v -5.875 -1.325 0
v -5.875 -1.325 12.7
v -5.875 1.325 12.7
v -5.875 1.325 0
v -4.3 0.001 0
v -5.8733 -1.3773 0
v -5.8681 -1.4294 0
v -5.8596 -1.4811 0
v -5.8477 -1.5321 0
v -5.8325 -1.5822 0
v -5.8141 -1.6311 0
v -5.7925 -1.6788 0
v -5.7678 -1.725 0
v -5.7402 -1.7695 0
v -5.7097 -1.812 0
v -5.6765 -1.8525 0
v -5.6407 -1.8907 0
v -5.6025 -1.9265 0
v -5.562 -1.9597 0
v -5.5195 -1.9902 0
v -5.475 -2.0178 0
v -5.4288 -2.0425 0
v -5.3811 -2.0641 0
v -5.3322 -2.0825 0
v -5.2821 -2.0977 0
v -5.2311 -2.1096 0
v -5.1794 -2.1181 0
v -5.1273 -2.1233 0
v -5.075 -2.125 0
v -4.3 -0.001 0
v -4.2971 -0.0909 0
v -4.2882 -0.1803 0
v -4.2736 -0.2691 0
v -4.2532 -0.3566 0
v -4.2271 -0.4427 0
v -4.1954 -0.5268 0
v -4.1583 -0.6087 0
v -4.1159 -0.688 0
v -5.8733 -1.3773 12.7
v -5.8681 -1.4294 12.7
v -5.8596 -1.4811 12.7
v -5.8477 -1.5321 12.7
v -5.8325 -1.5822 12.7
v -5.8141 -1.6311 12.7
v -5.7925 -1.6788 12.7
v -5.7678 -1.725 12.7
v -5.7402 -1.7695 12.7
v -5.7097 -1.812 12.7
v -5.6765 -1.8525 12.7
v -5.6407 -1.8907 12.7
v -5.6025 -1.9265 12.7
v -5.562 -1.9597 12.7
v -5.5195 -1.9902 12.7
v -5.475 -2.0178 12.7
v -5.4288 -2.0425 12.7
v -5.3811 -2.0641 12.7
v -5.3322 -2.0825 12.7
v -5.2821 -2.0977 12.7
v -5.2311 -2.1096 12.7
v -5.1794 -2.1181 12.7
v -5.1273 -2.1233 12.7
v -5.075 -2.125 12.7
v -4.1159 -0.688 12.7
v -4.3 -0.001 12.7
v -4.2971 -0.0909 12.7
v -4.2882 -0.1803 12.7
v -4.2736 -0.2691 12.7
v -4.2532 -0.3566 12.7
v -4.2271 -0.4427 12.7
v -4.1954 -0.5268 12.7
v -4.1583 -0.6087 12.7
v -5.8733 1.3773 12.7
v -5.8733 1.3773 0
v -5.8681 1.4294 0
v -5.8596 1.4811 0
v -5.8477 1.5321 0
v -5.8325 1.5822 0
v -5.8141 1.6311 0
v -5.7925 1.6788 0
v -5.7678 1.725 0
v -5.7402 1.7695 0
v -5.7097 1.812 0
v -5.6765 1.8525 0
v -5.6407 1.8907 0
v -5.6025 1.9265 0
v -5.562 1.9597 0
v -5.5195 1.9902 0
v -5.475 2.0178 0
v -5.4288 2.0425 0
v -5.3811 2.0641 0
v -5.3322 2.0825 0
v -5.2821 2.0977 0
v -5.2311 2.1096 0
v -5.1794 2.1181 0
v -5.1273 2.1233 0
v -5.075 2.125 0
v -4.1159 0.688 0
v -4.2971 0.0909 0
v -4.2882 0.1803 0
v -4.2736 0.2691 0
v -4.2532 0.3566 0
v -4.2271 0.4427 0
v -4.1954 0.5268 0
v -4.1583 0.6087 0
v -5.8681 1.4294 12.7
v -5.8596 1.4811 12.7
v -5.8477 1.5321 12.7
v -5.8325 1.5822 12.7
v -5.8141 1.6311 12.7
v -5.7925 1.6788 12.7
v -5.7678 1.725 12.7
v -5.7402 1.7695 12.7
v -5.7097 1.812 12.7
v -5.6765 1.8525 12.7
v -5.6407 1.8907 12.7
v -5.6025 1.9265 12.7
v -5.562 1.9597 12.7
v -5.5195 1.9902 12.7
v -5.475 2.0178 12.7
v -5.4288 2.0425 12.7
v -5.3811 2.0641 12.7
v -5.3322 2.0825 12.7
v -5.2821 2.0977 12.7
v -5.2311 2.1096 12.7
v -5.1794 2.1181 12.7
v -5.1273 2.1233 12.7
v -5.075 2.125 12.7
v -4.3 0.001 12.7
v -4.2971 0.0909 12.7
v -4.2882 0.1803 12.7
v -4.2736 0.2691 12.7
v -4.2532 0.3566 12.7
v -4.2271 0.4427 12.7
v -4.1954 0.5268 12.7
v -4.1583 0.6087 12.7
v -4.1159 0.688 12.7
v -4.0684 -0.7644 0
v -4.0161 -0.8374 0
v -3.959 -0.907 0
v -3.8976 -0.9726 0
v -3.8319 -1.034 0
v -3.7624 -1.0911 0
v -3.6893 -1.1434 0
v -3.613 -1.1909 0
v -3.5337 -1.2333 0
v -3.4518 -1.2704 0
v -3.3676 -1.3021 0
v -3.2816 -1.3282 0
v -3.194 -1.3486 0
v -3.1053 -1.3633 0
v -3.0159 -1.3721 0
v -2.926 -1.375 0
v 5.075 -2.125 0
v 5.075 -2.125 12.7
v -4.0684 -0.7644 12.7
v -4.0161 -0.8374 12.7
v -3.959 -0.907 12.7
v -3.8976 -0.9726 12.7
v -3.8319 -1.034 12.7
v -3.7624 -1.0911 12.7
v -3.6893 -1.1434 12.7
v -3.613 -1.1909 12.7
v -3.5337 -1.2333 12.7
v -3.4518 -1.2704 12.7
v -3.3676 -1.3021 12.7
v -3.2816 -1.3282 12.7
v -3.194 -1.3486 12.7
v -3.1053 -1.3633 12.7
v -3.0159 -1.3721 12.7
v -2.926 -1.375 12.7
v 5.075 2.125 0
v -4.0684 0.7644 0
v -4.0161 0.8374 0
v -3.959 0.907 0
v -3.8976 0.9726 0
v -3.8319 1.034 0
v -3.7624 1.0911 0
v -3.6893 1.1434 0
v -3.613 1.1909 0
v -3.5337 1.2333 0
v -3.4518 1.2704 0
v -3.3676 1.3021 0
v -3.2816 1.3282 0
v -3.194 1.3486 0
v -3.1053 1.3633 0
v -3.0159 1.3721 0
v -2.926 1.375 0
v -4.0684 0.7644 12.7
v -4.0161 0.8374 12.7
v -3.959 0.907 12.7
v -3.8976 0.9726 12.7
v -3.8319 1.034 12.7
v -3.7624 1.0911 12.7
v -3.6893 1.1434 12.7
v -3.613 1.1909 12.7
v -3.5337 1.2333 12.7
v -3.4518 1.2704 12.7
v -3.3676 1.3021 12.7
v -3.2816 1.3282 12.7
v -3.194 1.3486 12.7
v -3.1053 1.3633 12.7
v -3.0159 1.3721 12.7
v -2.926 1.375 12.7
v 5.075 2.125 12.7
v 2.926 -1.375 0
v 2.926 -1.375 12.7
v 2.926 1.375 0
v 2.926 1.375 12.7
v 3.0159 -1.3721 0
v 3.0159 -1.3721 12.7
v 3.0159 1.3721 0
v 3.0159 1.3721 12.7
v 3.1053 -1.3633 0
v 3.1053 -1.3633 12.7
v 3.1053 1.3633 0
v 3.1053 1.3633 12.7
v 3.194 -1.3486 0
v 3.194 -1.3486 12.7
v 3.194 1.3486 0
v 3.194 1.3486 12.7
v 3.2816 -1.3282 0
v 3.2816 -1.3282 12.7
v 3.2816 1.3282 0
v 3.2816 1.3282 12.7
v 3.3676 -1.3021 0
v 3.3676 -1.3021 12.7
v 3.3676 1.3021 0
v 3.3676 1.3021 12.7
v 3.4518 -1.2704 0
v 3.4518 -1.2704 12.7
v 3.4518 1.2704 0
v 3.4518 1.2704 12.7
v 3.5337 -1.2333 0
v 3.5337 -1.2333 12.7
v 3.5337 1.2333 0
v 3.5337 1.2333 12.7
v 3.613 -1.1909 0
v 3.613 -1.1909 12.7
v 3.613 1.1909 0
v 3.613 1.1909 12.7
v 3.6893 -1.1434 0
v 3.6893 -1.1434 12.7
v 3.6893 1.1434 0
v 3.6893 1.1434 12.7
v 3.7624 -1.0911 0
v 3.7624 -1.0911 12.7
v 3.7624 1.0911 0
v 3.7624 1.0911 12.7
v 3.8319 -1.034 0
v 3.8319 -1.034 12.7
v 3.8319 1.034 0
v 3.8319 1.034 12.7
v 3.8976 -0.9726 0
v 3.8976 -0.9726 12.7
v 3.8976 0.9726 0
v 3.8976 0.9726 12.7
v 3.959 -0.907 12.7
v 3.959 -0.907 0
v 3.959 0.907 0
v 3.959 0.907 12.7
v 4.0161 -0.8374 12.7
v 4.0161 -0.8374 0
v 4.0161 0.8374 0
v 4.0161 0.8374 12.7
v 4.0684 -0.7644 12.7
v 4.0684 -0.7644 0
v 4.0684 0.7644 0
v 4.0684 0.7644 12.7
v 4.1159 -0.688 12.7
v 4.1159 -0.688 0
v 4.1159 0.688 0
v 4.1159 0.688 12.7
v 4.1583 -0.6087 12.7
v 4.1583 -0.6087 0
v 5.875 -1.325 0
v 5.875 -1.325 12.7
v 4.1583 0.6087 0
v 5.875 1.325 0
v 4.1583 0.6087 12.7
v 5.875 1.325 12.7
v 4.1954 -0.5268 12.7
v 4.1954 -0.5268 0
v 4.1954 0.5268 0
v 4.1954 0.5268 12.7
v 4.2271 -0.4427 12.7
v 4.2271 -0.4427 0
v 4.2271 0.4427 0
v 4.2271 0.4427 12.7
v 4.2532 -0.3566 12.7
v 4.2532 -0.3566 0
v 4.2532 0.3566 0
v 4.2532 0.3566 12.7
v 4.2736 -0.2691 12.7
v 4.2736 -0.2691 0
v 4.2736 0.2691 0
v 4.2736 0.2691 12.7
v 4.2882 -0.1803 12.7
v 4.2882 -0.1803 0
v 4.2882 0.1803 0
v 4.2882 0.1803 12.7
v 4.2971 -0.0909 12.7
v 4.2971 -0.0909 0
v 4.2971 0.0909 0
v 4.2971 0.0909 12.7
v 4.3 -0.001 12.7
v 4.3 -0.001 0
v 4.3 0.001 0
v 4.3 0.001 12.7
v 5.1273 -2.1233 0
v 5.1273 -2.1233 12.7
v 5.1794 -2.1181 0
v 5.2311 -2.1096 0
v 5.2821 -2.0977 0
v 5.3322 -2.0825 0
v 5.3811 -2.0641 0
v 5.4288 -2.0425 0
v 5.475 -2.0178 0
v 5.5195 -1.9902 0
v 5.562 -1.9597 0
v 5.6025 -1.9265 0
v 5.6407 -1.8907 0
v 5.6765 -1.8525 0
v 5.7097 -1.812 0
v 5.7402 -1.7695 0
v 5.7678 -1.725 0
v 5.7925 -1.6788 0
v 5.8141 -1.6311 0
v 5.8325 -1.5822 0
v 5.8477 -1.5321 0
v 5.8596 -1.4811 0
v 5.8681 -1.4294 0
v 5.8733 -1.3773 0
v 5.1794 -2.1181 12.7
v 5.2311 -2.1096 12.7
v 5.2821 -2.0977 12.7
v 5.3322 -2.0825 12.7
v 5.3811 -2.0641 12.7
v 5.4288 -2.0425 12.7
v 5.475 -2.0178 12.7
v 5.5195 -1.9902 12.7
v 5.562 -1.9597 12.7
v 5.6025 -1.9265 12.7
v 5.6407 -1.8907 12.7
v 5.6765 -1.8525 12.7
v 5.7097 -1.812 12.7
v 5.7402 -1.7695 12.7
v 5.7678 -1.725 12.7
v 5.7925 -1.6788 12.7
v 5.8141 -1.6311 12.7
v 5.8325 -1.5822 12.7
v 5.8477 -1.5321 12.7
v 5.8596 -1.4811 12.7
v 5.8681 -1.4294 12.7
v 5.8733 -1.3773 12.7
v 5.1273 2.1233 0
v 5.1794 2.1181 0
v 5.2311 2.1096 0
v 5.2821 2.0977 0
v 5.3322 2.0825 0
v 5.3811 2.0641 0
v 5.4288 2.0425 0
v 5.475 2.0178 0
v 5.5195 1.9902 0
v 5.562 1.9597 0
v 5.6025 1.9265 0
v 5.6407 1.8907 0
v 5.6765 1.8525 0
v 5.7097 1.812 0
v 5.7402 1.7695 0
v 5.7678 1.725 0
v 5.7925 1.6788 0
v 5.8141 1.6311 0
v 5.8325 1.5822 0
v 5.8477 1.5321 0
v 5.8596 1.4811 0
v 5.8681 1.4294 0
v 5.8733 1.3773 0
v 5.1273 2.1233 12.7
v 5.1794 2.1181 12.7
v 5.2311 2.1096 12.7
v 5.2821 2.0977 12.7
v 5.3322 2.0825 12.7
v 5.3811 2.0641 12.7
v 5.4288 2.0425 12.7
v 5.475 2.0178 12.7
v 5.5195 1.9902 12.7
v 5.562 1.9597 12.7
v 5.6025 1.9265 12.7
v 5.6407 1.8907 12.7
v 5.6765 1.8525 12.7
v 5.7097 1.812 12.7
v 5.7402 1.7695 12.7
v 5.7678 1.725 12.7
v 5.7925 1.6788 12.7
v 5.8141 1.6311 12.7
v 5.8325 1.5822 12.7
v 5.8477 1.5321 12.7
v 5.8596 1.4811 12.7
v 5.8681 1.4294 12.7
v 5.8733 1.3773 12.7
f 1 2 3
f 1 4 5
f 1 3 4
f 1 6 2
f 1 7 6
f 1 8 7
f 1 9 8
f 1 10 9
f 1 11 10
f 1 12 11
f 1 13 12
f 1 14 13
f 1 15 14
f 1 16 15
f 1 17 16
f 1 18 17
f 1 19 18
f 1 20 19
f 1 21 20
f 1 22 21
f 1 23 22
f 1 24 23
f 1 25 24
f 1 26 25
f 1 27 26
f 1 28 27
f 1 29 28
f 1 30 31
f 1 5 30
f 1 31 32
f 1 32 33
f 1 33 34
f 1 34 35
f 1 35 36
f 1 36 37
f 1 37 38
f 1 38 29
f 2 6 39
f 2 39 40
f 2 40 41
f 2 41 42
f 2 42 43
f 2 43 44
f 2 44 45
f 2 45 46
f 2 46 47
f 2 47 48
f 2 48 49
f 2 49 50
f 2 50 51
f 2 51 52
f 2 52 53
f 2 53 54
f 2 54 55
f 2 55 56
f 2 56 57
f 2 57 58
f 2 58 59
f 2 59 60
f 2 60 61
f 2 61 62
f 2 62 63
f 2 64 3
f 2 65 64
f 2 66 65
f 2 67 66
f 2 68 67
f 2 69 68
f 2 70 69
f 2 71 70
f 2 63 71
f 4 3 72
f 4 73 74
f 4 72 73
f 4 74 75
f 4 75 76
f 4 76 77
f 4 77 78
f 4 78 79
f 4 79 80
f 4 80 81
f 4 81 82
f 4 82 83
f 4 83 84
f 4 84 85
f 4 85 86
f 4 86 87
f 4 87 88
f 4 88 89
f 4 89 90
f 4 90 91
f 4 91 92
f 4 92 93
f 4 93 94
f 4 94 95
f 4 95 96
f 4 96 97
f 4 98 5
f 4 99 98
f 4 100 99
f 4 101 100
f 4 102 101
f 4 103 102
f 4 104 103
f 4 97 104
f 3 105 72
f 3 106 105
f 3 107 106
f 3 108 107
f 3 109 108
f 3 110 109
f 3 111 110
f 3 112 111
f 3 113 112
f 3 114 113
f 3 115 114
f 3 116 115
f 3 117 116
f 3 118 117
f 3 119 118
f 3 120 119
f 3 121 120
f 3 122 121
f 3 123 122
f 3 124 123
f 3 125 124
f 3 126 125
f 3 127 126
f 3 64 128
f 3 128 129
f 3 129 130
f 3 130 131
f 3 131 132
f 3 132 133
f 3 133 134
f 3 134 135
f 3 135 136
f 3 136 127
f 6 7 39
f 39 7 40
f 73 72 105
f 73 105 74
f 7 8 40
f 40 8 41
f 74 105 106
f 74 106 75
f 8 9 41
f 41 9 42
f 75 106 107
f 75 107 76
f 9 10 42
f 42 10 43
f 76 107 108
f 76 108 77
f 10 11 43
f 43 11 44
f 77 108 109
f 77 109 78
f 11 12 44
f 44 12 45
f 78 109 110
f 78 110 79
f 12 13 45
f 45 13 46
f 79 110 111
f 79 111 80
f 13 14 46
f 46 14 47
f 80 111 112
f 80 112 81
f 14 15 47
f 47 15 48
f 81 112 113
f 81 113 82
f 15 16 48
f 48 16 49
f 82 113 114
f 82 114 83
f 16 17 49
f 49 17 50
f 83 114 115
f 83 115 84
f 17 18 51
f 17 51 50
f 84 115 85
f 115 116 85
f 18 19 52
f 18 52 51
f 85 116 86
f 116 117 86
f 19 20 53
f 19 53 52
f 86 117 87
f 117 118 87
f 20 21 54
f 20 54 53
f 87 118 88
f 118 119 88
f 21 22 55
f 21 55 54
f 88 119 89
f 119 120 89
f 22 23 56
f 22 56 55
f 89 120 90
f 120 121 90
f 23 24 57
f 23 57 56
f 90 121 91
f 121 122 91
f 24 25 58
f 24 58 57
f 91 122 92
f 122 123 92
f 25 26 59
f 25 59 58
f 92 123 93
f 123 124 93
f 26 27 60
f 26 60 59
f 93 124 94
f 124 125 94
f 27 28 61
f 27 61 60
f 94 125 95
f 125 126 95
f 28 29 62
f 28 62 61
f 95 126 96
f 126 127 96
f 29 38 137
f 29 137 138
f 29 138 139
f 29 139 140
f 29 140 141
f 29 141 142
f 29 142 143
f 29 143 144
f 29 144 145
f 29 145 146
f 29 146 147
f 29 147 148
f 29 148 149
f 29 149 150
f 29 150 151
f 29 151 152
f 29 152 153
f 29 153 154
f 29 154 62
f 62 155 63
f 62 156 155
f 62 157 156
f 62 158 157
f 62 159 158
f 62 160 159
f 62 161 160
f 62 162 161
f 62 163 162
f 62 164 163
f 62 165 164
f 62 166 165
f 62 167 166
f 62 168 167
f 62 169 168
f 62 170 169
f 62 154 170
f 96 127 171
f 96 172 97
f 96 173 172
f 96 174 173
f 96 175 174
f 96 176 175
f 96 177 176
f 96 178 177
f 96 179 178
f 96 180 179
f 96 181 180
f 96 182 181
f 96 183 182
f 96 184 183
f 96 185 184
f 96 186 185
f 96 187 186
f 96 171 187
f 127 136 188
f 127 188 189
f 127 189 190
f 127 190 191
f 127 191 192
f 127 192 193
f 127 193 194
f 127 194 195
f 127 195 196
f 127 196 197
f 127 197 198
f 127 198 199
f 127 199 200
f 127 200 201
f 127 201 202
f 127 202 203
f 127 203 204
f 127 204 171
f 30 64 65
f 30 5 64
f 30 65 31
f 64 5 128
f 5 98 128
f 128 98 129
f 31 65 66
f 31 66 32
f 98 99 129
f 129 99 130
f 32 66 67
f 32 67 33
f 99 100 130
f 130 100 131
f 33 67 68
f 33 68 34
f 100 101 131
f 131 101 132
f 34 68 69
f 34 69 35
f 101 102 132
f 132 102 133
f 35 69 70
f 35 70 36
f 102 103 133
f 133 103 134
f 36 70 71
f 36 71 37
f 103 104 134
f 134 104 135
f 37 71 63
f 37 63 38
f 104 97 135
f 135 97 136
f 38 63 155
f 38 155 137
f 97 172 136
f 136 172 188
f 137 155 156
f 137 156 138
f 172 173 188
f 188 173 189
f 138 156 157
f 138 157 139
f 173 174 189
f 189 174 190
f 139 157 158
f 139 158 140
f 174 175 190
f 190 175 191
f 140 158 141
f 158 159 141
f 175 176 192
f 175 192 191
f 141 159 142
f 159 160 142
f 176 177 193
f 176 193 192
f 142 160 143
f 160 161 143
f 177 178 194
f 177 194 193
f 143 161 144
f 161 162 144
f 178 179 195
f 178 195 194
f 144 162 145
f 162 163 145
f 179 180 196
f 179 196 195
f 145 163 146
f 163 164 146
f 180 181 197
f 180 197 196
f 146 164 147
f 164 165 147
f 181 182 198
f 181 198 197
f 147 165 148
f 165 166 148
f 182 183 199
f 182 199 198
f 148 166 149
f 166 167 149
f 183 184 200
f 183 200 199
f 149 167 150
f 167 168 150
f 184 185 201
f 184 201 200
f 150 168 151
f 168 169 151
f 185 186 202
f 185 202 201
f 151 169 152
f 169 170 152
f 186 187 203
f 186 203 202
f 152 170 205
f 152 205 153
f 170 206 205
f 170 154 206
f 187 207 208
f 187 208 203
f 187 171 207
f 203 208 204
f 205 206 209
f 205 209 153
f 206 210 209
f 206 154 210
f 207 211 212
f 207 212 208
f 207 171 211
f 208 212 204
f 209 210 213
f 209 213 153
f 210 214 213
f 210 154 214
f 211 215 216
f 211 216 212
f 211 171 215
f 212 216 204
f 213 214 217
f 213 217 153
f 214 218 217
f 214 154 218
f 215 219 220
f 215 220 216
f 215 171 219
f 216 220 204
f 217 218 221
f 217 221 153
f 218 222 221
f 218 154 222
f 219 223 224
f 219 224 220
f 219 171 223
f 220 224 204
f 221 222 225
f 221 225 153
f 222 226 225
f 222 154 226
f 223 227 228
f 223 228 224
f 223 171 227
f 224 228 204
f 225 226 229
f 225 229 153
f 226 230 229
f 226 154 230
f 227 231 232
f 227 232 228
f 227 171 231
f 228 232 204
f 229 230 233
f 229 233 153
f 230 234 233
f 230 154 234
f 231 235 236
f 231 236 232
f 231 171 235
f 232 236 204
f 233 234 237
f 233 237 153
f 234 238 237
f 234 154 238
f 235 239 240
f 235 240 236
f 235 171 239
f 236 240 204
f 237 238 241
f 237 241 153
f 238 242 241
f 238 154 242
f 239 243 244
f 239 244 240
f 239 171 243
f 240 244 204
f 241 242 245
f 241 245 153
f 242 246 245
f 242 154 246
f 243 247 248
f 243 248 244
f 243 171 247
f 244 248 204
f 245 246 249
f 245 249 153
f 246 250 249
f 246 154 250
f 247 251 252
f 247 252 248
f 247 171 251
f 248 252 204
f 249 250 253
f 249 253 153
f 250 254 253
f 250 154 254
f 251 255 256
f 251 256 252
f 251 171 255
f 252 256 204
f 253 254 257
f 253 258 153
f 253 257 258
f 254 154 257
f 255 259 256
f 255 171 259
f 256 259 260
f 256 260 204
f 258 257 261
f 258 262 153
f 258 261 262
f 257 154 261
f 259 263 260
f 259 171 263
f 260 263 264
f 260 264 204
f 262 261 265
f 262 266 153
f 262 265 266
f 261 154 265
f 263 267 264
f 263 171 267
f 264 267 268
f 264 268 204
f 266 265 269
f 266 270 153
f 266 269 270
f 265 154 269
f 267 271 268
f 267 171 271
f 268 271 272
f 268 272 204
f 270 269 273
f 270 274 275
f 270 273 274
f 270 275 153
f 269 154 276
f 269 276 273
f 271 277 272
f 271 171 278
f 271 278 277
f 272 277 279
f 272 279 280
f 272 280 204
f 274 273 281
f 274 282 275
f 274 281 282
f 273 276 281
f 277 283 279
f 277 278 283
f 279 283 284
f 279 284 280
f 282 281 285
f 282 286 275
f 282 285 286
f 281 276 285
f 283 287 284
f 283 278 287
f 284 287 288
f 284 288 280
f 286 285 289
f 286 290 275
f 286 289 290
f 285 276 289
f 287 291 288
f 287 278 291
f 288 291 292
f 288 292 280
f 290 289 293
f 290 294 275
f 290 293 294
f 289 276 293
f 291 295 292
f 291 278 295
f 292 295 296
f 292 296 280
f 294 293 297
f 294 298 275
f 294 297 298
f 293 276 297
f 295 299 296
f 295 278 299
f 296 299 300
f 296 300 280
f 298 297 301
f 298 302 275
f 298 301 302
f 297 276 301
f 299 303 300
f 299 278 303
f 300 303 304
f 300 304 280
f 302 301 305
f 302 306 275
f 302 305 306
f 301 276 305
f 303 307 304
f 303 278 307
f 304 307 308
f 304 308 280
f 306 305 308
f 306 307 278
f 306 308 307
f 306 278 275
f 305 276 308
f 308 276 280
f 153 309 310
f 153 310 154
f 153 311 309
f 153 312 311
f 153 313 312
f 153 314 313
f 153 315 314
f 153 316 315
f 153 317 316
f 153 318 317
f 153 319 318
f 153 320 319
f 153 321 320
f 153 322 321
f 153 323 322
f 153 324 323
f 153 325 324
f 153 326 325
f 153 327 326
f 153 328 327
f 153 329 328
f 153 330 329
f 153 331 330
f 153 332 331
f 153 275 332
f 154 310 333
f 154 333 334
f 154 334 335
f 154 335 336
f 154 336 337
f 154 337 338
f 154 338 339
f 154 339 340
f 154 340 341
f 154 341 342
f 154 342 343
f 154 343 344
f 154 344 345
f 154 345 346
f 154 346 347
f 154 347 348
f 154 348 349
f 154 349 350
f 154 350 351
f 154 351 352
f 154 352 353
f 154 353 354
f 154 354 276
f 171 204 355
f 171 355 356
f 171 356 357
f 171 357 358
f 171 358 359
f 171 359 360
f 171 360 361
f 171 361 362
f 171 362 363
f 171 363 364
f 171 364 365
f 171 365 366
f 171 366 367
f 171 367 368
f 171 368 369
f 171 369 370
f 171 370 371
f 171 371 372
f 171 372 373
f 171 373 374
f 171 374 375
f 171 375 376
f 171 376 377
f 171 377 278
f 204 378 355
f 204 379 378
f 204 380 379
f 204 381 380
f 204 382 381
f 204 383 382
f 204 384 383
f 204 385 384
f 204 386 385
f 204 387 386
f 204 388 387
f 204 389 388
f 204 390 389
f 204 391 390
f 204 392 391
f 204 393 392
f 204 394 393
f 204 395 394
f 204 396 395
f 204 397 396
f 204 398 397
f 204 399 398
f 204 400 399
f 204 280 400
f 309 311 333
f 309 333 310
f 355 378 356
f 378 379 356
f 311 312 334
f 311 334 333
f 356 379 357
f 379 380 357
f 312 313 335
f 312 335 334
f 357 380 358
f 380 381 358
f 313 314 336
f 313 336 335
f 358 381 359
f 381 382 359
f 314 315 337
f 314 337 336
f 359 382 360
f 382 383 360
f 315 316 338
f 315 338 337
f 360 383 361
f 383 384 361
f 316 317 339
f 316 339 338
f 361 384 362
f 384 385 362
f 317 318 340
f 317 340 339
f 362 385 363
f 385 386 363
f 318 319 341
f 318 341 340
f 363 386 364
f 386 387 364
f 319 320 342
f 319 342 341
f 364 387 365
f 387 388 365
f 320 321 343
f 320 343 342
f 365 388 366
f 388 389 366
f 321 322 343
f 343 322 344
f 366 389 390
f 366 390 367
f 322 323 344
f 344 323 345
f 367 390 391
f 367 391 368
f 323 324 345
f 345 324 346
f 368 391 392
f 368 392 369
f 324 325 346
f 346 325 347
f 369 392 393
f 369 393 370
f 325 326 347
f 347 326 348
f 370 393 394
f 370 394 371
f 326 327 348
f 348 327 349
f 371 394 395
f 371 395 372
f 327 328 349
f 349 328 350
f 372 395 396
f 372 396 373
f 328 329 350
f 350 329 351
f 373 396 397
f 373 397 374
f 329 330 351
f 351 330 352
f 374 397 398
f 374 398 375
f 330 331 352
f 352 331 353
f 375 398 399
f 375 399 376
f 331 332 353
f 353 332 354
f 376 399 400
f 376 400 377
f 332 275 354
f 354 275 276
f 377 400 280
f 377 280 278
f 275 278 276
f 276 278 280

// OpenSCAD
// USB-A hole → USB-C drive storage adapter
// Solid block sized like a USB-A plug with a USB-C shaped pocket inside.
// Friction-fit into a USB-A storage slot to hold a USB-C drive.

/* [USB-A outer shell] */
usb_a_width        = 12.0;   // nominal USB-A long dim
usb_a_height       = 4.5;    // nominal USB-A short dim
block_length       = 12.7;   // total block length
outer_clearance    = 0.25;   // subtracted from outer dims for fit
outer_corner_r     = 0.8;

/* [USB-C inner pocket] */
usb_c_width        = 8.25;    // nominal USB-C long dim
usb_c_height       = 2.4;    // nominal USB-C short dim
pocket_clearance   = 0.35;   // added to pocket dims for fit

/* [Pocket depth] */
through_hole       = true;   // false = blind pocket
blind_pocket_depth = 7.8;    // used when through_hole = false
blind_back_wall    = 1.2;

/* [Quality] */
$fn                = 96;

/* [Layout] */
print_orientation  = true;   // true = stand upright on build plate

// ---- derived ----
outer_w         = usb_a_width  - outer_clearance;
outer_h         = usb_a_height - outer_clearance;
pocket_w        = usb_c_width  + pocket_clearance;
pocket_h        = usb_c_height + pocket_clearance;
pocket_corner_r = pocket_h / 2;  // racetrack matches USB-C shape

module rounded_rect(w, h, r) {
    r_safe = min(r, min(w, h) / 2 - 0.001);
    offset(r = r_safe) offset(r = -r_safe) square([w, h], center = true);
}

module adapter() {
    difference() {
        linear_extrude(height = block_length)
            rounded_rect(outer_w, outer_h, outer_corner_r);

        pocket_bottom_z = through_hole ? -0.1 : blind_back_wall;
        pocket_top_z    = block_length + 0.1;
        translate([0, 0, pocket_bottom_z])
            linear_extrude(height = pocket_top_z - pocket_bottom_z)
                rounded_rect(pocket_w, pocket_h, pocket_corner_r);
    }
}

if (print_orientation) adapter();
else rotate([90, 0, 0]) adapter();
